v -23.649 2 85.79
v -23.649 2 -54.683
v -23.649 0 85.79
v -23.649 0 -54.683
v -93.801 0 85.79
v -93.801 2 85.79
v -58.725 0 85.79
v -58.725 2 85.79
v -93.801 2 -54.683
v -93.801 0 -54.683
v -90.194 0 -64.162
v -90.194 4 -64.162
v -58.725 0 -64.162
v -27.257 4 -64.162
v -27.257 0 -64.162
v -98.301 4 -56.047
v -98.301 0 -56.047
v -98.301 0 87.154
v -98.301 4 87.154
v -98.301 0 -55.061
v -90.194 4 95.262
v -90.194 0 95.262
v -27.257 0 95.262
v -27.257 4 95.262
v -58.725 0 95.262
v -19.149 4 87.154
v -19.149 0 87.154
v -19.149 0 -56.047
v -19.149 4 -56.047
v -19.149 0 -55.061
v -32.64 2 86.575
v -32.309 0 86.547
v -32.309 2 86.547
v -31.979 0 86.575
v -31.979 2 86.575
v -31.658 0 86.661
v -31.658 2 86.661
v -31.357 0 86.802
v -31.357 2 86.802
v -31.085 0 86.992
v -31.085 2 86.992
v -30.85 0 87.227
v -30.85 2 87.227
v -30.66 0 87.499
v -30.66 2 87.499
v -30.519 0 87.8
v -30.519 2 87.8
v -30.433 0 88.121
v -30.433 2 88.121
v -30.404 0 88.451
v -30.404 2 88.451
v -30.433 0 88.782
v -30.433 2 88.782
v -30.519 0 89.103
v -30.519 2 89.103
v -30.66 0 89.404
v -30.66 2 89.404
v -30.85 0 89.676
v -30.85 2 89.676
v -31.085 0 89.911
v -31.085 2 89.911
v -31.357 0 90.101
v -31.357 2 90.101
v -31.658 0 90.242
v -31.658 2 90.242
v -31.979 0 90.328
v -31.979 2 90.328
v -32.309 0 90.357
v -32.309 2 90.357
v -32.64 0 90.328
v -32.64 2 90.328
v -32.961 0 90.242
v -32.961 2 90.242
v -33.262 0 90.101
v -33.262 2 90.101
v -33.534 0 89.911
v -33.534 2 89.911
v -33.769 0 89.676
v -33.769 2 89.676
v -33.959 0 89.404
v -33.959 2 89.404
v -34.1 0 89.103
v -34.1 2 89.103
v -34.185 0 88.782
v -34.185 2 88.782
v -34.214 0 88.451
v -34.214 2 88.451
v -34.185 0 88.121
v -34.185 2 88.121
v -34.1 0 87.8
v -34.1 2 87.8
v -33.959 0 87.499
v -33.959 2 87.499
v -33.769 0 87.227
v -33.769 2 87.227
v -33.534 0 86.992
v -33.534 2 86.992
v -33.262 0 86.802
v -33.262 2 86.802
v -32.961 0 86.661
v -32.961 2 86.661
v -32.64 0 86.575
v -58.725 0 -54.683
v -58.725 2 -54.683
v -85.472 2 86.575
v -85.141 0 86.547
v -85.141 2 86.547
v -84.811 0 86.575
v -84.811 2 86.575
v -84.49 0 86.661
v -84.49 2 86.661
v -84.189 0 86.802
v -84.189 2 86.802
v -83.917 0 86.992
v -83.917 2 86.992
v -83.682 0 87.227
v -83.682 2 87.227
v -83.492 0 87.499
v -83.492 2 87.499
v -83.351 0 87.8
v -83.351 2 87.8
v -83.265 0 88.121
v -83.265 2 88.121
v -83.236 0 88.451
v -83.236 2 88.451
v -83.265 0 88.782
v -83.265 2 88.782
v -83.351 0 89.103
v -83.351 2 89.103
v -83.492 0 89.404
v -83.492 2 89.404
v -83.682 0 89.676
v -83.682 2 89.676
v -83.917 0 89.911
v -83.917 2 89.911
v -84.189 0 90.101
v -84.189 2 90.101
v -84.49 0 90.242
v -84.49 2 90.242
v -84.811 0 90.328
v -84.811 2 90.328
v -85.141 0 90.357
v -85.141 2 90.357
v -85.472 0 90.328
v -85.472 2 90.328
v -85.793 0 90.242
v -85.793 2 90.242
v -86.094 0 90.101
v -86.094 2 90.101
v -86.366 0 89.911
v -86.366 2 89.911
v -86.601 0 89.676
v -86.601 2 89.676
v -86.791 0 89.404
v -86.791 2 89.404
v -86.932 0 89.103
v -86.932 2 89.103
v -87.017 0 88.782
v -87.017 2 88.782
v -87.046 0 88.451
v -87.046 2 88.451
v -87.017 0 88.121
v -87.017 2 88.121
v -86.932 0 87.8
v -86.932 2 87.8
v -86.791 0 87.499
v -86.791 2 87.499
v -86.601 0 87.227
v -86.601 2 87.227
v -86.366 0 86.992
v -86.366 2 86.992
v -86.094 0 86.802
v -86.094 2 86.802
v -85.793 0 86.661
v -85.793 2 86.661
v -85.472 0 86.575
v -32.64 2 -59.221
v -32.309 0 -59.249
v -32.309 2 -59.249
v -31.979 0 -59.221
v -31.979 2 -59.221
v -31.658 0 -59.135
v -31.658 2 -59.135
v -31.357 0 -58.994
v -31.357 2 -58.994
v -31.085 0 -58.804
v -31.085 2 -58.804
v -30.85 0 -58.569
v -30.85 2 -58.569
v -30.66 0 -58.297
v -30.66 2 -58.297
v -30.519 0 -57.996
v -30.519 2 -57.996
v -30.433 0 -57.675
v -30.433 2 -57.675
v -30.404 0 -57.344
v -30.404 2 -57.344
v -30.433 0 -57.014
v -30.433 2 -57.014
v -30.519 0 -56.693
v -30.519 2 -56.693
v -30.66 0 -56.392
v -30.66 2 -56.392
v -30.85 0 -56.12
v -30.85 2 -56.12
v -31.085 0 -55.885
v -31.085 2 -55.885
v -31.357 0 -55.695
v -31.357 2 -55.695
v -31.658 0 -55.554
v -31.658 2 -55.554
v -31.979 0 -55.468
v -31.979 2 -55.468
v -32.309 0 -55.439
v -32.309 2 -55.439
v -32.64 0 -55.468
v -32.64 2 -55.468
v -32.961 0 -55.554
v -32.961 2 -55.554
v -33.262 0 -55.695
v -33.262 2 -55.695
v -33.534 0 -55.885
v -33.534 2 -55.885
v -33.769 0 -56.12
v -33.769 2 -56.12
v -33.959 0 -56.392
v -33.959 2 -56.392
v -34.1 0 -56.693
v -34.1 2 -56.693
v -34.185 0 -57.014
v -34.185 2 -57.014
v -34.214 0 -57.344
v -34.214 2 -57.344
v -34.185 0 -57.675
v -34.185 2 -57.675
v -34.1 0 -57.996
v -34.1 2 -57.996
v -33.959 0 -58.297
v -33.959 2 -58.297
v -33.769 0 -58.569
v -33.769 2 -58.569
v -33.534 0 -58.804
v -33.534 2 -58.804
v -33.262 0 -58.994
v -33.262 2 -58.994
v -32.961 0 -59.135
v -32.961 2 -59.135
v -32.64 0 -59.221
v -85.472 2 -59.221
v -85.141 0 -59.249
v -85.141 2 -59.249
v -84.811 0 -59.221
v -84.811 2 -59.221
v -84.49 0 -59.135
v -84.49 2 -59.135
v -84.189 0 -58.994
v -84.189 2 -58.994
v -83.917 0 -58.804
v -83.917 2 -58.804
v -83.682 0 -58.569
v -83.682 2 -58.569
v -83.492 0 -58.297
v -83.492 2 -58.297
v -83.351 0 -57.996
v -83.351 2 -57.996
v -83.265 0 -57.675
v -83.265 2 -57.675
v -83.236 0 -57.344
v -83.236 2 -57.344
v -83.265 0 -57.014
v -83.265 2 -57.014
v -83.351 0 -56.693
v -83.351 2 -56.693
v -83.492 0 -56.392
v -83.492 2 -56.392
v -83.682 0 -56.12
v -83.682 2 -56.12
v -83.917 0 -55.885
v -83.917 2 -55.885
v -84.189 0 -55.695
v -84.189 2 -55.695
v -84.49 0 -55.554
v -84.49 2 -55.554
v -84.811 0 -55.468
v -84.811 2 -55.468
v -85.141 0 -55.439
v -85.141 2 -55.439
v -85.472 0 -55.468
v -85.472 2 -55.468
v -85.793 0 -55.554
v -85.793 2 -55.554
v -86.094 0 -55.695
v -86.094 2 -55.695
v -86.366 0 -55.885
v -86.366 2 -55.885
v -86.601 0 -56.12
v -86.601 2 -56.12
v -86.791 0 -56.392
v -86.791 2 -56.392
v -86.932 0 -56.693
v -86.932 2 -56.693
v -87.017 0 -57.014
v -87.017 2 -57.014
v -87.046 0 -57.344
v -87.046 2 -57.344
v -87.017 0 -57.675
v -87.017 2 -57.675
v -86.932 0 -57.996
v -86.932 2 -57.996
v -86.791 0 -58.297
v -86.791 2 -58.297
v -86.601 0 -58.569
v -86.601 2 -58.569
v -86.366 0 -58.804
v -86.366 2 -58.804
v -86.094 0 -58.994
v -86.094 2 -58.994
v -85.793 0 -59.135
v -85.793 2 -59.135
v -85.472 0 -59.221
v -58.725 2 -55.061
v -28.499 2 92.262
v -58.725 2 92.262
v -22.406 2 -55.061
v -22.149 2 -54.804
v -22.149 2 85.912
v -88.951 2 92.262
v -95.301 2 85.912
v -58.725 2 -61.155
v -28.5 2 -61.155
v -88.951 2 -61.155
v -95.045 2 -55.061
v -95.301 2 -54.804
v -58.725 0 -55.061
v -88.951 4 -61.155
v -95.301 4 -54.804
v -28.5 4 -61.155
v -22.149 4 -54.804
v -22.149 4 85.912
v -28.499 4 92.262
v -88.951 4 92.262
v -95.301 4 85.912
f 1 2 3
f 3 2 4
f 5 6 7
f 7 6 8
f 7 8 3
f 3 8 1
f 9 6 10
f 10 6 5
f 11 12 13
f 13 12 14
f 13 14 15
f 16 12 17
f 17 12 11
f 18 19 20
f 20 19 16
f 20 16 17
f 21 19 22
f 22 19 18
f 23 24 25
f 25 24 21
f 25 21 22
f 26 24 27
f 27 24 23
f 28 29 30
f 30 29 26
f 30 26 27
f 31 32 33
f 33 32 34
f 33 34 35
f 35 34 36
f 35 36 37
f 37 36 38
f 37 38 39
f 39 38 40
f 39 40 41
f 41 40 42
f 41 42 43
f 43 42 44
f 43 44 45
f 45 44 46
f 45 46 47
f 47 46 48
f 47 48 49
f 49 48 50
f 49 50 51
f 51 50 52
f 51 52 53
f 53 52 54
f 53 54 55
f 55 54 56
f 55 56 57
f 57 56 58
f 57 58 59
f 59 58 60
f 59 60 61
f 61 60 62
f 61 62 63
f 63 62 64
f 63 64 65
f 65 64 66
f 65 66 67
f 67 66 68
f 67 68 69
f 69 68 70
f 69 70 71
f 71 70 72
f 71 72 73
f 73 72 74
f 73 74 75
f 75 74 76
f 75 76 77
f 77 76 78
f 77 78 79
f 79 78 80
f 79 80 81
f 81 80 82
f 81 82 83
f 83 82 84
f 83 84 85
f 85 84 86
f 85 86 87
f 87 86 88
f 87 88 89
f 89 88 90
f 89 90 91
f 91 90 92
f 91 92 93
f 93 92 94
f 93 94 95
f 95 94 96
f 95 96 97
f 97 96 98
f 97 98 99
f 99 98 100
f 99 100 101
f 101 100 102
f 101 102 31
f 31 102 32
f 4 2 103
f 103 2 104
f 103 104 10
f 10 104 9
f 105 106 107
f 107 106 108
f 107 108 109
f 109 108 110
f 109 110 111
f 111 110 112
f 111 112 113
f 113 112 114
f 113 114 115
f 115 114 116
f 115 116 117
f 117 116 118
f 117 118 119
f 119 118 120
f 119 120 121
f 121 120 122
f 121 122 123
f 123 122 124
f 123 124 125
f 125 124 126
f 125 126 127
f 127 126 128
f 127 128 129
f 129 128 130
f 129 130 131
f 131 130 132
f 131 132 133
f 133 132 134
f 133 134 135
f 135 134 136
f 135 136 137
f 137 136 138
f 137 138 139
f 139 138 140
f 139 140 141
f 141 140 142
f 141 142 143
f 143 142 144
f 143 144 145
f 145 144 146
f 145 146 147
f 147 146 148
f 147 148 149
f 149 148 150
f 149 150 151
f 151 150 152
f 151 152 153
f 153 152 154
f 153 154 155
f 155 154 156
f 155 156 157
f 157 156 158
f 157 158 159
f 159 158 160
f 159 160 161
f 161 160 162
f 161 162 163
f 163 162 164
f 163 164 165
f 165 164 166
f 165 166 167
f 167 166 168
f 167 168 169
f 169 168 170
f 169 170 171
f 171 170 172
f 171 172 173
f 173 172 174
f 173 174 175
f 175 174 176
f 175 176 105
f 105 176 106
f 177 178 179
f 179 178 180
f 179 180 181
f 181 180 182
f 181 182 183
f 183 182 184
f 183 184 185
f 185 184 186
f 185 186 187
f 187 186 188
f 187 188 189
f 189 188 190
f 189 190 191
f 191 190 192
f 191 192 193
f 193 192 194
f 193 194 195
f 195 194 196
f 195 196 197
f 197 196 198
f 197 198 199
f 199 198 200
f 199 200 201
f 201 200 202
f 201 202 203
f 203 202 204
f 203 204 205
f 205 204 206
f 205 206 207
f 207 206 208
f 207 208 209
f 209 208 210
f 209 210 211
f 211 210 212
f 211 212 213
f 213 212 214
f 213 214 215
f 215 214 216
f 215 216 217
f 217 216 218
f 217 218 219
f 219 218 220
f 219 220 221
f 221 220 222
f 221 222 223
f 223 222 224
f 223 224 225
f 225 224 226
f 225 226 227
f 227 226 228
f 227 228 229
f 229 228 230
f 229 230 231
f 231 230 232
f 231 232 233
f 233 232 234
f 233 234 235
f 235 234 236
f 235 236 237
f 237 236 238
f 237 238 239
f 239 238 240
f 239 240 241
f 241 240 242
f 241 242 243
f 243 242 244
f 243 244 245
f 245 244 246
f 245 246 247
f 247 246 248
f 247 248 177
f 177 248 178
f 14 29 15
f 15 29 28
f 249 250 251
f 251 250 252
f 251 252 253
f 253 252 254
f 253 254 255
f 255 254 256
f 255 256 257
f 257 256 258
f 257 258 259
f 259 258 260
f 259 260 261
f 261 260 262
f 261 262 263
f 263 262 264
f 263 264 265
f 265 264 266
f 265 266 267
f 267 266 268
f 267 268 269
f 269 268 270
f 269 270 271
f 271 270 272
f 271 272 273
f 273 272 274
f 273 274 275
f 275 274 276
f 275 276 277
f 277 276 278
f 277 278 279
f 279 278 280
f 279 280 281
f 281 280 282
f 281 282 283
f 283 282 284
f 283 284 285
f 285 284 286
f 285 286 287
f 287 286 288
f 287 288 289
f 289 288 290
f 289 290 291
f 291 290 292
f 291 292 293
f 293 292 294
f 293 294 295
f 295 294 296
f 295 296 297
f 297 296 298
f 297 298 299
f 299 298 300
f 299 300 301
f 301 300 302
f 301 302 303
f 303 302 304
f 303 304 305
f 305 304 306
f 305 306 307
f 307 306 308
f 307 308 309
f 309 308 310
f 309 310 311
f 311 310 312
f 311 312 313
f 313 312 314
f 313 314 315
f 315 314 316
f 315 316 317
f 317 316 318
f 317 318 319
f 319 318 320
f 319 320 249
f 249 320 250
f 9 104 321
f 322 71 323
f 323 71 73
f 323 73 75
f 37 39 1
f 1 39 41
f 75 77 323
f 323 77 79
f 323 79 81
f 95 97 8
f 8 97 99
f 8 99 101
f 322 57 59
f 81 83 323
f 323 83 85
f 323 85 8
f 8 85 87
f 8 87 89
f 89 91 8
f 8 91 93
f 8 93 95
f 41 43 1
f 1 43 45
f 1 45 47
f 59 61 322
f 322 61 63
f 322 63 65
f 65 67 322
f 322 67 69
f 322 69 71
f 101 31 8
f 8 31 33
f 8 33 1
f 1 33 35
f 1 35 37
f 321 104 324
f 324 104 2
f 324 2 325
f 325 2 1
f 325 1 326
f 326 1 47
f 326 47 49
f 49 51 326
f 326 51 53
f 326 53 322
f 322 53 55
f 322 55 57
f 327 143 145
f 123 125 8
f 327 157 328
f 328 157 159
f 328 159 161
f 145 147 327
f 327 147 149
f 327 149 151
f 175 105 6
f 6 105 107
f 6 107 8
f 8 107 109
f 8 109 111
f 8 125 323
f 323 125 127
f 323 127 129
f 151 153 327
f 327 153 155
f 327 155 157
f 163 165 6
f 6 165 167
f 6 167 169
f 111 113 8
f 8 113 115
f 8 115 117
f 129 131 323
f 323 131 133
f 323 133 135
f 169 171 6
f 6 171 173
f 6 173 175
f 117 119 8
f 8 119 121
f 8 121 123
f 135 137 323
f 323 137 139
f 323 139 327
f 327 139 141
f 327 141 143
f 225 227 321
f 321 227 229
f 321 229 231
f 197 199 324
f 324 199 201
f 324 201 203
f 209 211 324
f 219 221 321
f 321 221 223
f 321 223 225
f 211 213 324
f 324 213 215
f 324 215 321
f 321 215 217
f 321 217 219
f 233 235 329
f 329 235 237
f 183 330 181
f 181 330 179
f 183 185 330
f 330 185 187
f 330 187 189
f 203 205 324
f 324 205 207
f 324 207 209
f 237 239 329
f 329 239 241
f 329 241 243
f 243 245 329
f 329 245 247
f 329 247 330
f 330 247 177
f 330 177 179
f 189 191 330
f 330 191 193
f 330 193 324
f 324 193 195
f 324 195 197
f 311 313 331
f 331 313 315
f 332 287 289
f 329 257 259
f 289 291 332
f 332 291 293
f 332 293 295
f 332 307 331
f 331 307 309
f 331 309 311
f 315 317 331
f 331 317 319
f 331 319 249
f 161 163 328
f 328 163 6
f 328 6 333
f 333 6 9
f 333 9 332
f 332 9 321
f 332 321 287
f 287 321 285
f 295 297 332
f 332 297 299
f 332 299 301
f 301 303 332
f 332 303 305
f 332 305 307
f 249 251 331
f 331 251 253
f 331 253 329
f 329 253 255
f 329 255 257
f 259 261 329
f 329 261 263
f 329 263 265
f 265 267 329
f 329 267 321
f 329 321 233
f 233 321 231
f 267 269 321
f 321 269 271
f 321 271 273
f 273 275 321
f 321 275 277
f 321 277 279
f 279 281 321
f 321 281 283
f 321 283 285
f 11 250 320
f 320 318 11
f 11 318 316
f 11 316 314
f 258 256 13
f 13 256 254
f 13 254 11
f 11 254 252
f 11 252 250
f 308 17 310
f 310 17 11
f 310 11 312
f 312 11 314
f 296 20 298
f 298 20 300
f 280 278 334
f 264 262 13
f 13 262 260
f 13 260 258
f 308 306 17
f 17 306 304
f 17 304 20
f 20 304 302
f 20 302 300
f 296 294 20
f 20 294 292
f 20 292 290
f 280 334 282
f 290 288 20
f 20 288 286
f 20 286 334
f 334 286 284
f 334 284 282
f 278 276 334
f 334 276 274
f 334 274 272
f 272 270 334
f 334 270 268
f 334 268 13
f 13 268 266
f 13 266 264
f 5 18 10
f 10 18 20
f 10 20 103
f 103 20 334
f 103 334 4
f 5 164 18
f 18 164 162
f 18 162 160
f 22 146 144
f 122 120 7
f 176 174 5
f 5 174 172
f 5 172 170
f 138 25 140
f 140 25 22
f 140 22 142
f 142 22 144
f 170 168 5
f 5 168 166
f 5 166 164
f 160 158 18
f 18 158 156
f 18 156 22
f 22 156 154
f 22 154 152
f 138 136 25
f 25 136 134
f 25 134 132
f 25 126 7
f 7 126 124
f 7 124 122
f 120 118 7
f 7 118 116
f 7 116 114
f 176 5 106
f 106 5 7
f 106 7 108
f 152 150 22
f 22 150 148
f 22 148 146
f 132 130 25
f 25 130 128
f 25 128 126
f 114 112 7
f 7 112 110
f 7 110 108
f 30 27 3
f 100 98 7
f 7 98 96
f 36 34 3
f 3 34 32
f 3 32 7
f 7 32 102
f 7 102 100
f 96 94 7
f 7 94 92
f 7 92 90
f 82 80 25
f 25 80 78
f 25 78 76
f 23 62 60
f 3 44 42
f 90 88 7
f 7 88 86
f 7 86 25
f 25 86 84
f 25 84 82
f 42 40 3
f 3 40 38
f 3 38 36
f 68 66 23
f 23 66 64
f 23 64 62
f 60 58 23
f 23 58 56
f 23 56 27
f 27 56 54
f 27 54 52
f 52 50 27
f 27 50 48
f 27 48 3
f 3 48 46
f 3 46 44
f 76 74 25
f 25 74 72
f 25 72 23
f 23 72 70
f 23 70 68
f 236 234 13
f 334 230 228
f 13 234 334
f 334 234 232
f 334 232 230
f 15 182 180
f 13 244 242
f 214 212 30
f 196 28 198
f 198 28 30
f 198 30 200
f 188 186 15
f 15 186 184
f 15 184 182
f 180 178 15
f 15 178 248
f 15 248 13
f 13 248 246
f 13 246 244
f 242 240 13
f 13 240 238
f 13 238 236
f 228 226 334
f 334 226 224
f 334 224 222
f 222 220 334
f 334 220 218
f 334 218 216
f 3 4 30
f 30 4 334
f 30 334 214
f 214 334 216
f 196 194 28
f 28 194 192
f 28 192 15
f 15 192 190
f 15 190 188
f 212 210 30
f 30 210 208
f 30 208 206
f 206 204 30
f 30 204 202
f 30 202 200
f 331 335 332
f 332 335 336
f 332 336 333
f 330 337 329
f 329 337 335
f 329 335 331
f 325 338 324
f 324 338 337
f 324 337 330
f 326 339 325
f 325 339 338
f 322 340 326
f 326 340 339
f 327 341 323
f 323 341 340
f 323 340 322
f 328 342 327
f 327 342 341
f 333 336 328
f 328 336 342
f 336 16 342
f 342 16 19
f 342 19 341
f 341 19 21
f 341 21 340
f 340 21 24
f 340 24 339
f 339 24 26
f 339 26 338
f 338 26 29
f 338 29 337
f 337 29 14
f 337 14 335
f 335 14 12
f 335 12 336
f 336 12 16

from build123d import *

# Parameters (mm, degrees)
SKETCH1_R           = 1.905
SKETCH1_W           = 70.15200002
SKETCH1_H           = 140.473361982
BOSS_EXTRUDE1_DEPTH = 2
BOSS_EXTRUDE2_DEPTH = 4


with BuildPart() as part:
    # Sketch1 → Boss-Extrude1 (new body)
    with BuildSketch(Plane(origin=(0, 0, 0), x_dir=(1, 0, 0), z_dir=(0, 1, 0))):
        Polygon((-27.256776842, -95.261534652), (-19.149417529, -87.154200597), (-19.149417529, 56.047080778), (-27.25676908, 64.16156963), (-90.194065977, 64.16156963), (-98.301422703, 56.047100861), (-98.301422703, -87.154180513), (-90.194058216, -95.261534652), align=None)
        with Locations((-85.141420182, -88.451514751)):
            Circle(SKETCH1_R, mode=Mode.SUBTRACT)
        with Locations((-58.725420192, -15.553513417)):
            Rectangle(SKETCH1_W, SKETCH1_H, mode=Mode.SUBTRACT)
        with Locations((-32.309420182, -88.451514751)):
            Circle(SKETCH1_R, mode=Mode.SUBTRACT)
        with Locations((-85.141420182, 57.344485249)):
            Circle(SKETCH1_R, mode=Mode.SUBTRACT)
        with Locations((-32.309420182, 57.344485249)):
            Circle(SKETCH1_R, mode=Mode.SUBTRACT)
    extrude(amount=BOSS_EXTRUDE1_DEPTH)

    # Sketch1<3> → Boss-Extrude2 (add)
    with BuildSketch(Plane(origin=(0, 0, 0), x_dir=(1, 0, 0), z_dir=(0, 1, 0))):
        Polygon((-27.256776842, -95.261534652), (-19.149417529, -87.154200597), (-19.149417529, 56.047080778), (-27.25676908, 64.16156963), (-90.194065977, 64.16156963), (-98.301422703, 56.047100861), (-98.301422703, -87.154180513), (-90.194058216, -95.261534652), align=None)
        Polygon((-22.14941613, 54.804442616), (-22.14941613, -85.911557384), (-28.499420182, -92.261514751), (-88.951420183, -92.261514751), (-95.301420183, -85.911514751), (-95.301420183, 54.804485249), (-88.951438098, 61.154505914), (-28.499624487, 61.154505914), align=None, mode=Mode.SUBTRACT)
    extrude(amount=BOSS_EXTRUDE2_DEPTH)


solid = part.part
